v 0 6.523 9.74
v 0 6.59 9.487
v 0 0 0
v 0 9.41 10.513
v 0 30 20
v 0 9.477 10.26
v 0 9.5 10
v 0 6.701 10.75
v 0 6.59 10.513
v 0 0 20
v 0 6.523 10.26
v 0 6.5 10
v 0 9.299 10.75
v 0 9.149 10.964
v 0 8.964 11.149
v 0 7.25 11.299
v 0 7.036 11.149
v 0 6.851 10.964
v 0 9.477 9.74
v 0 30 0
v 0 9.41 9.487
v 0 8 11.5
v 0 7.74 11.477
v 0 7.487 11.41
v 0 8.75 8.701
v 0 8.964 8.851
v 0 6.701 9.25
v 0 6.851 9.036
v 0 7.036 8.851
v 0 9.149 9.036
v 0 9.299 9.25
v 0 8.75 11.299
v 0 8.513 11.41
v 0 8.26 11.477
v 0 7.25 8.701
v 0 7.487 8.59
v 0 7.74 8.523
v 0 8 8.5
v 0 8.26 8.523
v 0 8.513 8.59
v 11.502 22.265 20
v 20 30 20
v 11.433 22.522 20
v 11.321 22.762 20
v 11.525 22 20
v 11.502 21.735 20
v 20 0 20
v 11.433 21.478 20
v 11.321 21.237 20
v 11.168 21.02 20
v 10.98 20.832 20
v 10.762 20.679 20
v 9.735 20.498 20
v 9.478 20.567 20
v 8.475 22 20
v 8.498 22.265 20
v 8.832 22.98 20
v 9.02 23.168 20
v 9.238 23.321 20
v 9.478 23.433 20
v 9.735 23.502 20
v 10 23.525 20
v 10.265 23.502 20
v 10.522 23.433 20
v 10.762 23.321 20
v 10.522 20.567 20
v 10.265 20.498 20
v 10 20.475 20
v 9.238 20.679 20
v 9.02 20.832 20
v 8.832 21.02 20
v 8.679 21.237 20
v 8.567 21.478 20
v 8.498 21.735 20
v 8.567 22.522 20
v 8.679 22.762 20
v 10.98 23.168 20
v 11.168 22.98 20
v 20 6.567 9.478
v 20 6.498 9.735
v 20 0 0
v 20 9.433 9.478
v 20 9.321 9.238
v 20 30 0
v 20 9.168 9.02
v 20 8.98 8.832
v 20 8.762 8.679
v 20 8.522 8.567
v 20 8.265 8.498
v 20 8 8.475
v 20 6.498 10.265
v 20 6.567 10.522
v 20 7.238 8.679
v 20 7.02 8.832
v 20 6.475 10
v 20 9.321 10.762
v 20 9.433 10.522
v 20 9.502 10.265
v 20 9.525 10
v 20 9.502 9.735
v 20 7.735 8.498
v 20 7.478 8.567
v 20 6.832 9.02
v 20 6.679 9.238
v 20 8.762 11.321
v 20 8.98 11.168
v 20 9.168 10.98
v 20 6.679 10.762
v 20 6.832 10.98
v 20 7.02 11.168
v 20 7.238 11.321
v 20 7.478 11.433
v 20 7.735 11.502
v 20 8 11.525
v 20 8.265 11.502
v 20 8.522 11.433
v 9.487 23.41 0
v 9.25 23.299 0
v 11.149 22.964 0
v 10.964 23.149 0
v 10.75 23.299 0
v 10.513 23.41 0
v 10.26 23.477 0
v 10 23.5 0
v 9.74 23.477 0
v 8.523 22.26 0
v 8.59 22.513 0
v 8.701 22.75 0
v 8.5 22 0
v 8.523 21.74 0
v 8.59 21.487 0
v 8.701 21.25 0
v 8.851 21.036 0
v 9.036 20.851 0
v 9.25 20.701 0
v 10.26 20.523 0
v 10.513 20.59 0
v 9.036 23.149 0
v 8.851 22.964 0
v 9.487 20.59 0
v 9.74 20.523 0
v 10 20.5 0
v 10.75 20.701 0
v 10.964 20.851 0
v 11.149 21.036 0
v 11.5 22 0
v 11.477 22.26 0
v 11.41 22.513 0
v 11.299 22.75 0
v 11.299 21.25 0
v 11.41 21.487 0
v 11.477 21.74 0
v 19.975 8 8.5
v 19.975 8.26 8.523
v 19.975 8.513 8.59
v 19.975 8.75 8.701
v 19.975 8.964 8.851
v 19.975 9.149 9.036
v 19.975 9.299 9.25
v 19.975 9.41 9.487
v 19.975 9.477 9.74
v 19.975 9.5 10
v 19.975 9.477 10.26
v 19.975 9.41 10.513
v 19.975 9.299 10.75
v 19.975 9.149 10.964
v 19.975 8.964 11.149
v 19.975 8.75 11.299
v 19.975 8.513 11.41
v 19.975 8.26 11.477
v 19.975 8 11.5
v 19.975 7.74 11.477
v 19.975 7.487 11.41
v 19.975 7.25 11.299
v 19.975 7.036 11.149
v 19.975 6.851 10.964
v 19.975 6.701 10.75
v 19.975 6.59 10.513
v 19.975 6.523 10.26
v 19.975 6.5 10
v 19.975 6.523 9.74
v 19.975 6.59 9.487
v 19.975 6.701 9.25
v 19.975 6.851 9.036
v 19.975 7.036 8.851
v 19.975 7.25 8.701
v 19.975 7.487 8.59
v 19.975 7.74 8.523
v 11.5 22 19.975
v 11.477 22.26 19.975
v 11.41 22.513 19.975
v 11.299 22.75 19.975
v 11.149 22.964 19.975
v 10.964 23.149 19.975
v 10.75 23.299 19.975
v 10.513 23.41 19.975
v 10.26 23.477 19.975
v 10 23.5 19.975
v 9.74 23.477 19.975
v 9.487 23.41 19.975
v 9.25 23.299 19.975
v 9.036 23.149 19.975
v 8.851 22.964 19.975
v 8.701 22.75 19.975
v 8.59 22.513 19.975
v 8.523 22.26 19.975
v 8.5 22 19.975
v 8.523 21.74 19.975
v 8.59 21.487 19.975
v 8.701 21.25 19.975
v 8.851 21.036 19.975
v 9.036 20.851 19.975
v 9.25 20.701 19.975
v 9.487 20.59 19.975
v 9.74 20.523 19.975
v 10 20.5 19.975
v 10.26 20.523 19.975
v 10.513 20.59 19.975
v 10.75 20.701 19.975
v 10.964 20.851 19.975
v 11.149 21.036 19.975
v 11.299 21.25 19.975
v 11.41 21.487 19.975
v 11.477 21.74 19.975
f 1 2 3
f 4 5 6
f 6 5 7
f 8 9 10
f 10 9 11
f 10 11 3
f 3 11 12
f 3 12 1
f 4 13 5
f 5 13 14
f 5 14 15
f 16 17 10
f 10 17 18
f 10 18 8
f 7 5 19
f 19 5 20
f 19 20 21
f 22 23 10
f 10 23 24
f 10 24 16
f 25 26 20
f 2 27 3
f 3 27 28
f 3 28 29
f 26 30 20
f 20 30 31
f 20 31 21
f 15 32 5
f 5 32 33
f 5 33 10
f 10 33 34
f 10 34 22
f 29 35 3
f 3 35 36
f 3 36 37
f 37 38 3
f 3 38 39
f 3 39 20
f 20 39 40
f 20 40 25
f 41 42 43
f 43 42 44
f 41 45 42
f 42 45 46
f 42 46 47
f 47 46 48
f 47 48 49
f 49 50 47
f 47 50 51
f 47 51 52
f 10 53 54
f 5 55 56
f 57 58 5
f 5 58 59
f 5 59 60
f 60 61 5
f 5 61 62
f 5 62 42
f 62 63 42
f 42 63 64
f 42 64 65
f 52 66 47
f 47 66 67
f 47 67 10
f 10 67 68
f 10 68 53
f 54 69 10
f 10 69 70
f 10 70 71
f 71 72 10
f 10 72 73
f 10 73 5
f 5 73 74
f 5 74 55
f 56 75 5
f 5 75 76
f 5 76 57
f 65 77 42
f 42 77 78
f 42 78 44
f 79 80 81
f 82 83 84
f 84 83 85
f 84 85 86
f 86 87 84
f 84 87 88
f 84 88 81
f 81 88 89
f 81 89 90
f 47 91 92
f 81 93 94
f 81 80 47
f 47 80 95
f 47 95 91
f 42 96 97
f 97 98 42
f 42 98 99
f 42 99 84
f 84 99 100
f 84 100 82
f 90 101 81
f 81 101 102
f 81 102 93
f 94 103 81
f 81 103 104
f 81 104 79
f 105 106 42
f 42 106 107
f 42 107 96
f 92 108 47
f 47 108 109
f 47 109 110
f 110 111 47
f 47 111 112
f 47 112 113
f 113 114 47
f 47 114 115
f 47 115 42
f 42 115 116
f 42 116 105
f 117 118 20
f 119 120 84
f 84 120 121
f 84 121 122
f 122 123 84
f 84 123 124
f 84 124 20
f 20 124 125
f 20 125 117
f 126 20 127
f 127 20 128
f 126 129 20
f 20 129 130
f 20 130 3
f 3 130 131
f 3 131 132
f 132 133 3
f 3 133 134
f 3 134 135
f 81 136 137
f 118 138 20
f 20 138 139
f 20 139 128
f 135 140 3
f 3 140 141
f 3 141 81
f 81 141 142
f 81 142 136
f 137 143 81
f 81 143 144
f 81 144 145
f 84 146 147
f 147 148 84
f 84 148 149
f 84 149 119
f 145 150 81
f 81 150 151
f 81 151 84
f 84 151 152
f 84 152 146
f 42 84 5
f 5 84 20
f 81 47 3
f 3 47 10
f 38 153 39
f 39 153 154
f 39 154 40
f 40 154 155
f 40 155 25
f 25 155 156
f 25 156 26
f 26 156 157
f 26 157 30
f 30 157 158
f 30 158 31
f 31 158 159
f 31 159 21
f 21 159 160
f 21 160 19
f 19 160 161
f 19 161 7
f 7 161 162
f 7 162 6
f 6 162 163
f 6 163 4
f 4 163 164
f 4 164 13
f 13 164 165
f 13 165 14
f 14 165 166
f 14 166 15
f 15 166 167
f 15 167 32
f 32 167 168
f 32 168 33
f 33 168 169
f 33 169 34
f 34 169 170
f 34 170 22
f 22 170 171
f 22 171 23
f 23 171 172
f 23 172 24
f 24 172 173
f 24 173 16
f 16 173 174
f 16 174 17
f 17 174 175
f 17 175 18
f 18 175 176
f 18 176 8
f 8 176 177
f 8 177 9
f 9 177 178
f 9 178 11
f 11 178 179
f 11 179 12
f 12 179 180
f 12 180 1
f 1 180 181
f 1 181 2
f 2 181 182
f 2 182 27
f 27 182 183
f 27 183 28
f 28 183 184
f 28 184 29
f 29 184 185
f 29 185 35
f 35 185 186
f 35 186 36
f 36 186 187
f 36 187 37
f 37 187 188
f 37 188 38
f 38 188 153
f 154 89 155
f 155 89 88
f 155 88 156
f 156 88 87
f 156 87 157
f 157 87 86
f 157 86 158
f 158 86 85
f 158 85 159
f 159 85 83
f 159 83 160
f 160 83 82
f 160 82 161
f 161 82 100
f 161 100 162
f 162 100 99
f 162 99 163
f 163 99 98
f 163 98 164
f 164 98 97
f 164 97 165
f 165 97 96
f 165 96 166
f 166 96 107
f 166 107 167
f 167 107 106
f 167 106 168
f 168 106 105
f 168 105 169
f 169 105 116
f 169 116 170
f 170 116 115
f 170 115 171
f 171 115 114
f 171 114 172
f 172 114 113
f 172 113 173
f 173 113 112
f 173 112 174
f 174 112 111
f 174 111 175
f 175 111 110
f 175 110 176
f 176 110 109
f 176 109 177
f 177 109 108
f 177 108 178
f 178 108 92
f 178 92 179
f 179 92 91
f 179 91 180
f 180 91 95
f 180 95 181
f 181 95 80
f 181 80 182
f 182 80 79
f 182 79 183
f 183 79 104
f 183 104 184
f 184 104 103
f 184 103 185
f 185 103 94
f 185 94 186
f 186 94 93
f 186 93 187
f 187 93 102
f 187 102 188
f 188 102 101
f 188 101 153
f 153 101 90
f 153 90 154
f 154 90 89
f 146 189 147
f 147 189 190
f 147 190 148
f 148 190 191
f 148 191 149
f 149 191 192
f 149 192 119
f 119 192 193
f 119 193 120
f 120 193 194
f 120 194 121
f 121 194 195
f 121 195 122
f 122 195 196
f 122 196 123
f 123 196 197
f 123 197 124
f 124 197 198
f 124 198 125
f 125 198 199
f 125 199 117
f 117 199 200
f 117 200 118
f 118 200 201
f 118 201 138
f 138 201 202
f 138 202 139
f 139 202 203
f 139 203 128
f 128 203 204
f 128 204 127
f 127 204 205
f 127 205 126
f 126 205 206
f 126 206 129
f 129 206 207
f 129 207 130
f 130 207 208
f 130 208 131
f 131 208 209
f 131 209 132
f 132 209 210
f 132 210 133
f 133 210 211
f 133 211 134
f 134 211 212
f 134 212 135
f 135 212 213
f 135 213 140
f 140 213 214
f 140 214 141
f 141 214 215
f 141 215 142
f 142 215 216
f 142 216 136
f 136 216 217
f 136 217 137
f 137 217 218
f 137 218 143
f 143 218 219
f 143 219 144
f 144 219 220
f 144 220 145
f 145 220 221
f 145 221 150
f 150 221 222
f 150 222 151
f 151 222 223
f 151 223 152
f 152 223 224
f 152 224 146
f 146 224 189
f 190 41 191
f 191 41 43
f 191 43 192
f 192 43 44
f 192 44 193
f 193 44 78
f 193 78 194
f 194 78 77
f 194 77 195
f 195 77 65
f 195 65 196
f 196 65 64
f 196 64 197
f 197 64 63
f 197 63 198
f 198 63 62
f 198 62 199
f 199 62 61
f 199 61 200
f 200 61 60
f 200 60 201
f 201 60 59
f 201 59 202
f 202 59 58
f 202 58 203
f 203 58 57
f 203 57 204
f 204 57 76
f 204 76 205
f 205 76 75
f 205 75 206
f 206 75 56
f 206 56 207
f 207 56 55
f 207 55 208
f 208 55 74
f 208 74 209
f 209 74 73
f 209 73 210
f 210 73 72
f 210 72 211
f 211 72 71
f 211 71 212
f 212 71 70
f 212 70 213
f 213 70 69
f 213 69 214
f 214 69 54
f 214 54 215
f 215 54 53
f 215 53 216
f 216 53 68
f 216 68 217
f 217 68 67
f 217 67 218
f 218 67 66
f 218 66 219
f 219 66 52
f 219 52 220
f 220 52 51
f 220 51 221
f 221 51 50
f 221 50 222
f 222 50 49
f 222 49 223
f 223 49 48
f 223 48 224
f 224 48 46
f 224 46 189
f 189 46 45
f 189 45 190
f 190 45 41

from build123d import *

# Parameters (mm, degrees)
SKETCH1_W                       = 20
SKETCH1_H                       = 20
BOSS_EXTRUDE1_DEPTH             = 30
F_3_0MM_DOWEL_HOLE1_D           = 3
F_3_0MM_DOWEL_HOLE1_DEPTH       = 20
F_3_0MM_DOWEL_HOLE1_CSINK_D     = 3.05
F_3_0MM_DOWEL_HOLE1_CSINK_ANGLE = 90
F_3_0MM_DOWEL_HOLE1_TIP         = 0.901290929
F_3_0MM_DOWEL_HOLE2_D           = 3
F_3_0MM_DOWEL_HOLE2_DEPTH       = 20
F_3_0MM_DOWEL_HOLE2_CSINK_D     = 3.05
F_3_0MM_DOWEL_HOLE2_CSINK_ANGLE = 90
F_3_0MM_DOWEL_HOLE2_TIP         = 0.901290929


with BuildPart() as part:
    # Sketch1 → Boss-Extrude1 (new body)
    with BuildSketch(Plane(origin=(0, 0, 0), x_dir=(1, 0, 0), z_dir=(0, 1, 0))):
        with Locations((10, -10)):
            Rectangle(SKETCH1_W, SKETCH1_H)
    extrude(amount=BOSS_EXTRUDE1_DEPTH)

    # Ø3.0mm Dowel Hole1
    with Locations(Plane(origin=(20, 0, 0), x_dir=(0, 0, -1), z_dir=(1, 0, 0))):
        with Locations((-10, 8)):
            CounterSinkHole(F_3_0MM_DOWEL_HOLE1_D / 2, F_3_0MM_DOWEL_HOLE1_CSINK_D / 2, depth=F_3_0MM_DOWEL_HOLE1_DEPTH, counter_sink_angle=F_3_0MM_DOWEL_HOLE1_CSINK_ANGLE)
            with Locations((0, 0, -(F_3_0MM_DOWEL_HOLE1_DEPTH + F_3_0MM_DOWEL_HOLE1_TIP / 2))):  # 118° drill point
                Cone(0, F_3_0MM_DOWEL_HOLE1_D / 2, F_3_0MM_DOWEL_HOLE1_TIP, mode=Mode.SUBTRACT)

    # Ø3.0mm Dowel Hole2
    with Locations(Plane.XY.offset(20)):
        with Locations((10, 22)):
            CounterSinkHole(F_3_0MM_DOWEL_HOLE2_D / 2, F_3_0MM_DOWEL_HOLE2_CSINK_D / 2, depth=F_3_0MM_DOWEL_HOLE2_DEPTH, counter_sink_angle=F_3_0MM_DOWEL_HOLE2_CSINK_ANGLE)
            with Locations((0, 0, -(F_3_0MM_DOWEL_HOLE2_DEPTH + F_3_0MM_DOWEL_HOLE2_TIP / 2))):  # 118° drill point
                Cone(0, F_3_0MM_DOWEL_HOLE2_D / 2, F_3_0MM_DOWEL_HOLE2_TIP, mode=Mode.SUBTRACT)


solid = part.part
